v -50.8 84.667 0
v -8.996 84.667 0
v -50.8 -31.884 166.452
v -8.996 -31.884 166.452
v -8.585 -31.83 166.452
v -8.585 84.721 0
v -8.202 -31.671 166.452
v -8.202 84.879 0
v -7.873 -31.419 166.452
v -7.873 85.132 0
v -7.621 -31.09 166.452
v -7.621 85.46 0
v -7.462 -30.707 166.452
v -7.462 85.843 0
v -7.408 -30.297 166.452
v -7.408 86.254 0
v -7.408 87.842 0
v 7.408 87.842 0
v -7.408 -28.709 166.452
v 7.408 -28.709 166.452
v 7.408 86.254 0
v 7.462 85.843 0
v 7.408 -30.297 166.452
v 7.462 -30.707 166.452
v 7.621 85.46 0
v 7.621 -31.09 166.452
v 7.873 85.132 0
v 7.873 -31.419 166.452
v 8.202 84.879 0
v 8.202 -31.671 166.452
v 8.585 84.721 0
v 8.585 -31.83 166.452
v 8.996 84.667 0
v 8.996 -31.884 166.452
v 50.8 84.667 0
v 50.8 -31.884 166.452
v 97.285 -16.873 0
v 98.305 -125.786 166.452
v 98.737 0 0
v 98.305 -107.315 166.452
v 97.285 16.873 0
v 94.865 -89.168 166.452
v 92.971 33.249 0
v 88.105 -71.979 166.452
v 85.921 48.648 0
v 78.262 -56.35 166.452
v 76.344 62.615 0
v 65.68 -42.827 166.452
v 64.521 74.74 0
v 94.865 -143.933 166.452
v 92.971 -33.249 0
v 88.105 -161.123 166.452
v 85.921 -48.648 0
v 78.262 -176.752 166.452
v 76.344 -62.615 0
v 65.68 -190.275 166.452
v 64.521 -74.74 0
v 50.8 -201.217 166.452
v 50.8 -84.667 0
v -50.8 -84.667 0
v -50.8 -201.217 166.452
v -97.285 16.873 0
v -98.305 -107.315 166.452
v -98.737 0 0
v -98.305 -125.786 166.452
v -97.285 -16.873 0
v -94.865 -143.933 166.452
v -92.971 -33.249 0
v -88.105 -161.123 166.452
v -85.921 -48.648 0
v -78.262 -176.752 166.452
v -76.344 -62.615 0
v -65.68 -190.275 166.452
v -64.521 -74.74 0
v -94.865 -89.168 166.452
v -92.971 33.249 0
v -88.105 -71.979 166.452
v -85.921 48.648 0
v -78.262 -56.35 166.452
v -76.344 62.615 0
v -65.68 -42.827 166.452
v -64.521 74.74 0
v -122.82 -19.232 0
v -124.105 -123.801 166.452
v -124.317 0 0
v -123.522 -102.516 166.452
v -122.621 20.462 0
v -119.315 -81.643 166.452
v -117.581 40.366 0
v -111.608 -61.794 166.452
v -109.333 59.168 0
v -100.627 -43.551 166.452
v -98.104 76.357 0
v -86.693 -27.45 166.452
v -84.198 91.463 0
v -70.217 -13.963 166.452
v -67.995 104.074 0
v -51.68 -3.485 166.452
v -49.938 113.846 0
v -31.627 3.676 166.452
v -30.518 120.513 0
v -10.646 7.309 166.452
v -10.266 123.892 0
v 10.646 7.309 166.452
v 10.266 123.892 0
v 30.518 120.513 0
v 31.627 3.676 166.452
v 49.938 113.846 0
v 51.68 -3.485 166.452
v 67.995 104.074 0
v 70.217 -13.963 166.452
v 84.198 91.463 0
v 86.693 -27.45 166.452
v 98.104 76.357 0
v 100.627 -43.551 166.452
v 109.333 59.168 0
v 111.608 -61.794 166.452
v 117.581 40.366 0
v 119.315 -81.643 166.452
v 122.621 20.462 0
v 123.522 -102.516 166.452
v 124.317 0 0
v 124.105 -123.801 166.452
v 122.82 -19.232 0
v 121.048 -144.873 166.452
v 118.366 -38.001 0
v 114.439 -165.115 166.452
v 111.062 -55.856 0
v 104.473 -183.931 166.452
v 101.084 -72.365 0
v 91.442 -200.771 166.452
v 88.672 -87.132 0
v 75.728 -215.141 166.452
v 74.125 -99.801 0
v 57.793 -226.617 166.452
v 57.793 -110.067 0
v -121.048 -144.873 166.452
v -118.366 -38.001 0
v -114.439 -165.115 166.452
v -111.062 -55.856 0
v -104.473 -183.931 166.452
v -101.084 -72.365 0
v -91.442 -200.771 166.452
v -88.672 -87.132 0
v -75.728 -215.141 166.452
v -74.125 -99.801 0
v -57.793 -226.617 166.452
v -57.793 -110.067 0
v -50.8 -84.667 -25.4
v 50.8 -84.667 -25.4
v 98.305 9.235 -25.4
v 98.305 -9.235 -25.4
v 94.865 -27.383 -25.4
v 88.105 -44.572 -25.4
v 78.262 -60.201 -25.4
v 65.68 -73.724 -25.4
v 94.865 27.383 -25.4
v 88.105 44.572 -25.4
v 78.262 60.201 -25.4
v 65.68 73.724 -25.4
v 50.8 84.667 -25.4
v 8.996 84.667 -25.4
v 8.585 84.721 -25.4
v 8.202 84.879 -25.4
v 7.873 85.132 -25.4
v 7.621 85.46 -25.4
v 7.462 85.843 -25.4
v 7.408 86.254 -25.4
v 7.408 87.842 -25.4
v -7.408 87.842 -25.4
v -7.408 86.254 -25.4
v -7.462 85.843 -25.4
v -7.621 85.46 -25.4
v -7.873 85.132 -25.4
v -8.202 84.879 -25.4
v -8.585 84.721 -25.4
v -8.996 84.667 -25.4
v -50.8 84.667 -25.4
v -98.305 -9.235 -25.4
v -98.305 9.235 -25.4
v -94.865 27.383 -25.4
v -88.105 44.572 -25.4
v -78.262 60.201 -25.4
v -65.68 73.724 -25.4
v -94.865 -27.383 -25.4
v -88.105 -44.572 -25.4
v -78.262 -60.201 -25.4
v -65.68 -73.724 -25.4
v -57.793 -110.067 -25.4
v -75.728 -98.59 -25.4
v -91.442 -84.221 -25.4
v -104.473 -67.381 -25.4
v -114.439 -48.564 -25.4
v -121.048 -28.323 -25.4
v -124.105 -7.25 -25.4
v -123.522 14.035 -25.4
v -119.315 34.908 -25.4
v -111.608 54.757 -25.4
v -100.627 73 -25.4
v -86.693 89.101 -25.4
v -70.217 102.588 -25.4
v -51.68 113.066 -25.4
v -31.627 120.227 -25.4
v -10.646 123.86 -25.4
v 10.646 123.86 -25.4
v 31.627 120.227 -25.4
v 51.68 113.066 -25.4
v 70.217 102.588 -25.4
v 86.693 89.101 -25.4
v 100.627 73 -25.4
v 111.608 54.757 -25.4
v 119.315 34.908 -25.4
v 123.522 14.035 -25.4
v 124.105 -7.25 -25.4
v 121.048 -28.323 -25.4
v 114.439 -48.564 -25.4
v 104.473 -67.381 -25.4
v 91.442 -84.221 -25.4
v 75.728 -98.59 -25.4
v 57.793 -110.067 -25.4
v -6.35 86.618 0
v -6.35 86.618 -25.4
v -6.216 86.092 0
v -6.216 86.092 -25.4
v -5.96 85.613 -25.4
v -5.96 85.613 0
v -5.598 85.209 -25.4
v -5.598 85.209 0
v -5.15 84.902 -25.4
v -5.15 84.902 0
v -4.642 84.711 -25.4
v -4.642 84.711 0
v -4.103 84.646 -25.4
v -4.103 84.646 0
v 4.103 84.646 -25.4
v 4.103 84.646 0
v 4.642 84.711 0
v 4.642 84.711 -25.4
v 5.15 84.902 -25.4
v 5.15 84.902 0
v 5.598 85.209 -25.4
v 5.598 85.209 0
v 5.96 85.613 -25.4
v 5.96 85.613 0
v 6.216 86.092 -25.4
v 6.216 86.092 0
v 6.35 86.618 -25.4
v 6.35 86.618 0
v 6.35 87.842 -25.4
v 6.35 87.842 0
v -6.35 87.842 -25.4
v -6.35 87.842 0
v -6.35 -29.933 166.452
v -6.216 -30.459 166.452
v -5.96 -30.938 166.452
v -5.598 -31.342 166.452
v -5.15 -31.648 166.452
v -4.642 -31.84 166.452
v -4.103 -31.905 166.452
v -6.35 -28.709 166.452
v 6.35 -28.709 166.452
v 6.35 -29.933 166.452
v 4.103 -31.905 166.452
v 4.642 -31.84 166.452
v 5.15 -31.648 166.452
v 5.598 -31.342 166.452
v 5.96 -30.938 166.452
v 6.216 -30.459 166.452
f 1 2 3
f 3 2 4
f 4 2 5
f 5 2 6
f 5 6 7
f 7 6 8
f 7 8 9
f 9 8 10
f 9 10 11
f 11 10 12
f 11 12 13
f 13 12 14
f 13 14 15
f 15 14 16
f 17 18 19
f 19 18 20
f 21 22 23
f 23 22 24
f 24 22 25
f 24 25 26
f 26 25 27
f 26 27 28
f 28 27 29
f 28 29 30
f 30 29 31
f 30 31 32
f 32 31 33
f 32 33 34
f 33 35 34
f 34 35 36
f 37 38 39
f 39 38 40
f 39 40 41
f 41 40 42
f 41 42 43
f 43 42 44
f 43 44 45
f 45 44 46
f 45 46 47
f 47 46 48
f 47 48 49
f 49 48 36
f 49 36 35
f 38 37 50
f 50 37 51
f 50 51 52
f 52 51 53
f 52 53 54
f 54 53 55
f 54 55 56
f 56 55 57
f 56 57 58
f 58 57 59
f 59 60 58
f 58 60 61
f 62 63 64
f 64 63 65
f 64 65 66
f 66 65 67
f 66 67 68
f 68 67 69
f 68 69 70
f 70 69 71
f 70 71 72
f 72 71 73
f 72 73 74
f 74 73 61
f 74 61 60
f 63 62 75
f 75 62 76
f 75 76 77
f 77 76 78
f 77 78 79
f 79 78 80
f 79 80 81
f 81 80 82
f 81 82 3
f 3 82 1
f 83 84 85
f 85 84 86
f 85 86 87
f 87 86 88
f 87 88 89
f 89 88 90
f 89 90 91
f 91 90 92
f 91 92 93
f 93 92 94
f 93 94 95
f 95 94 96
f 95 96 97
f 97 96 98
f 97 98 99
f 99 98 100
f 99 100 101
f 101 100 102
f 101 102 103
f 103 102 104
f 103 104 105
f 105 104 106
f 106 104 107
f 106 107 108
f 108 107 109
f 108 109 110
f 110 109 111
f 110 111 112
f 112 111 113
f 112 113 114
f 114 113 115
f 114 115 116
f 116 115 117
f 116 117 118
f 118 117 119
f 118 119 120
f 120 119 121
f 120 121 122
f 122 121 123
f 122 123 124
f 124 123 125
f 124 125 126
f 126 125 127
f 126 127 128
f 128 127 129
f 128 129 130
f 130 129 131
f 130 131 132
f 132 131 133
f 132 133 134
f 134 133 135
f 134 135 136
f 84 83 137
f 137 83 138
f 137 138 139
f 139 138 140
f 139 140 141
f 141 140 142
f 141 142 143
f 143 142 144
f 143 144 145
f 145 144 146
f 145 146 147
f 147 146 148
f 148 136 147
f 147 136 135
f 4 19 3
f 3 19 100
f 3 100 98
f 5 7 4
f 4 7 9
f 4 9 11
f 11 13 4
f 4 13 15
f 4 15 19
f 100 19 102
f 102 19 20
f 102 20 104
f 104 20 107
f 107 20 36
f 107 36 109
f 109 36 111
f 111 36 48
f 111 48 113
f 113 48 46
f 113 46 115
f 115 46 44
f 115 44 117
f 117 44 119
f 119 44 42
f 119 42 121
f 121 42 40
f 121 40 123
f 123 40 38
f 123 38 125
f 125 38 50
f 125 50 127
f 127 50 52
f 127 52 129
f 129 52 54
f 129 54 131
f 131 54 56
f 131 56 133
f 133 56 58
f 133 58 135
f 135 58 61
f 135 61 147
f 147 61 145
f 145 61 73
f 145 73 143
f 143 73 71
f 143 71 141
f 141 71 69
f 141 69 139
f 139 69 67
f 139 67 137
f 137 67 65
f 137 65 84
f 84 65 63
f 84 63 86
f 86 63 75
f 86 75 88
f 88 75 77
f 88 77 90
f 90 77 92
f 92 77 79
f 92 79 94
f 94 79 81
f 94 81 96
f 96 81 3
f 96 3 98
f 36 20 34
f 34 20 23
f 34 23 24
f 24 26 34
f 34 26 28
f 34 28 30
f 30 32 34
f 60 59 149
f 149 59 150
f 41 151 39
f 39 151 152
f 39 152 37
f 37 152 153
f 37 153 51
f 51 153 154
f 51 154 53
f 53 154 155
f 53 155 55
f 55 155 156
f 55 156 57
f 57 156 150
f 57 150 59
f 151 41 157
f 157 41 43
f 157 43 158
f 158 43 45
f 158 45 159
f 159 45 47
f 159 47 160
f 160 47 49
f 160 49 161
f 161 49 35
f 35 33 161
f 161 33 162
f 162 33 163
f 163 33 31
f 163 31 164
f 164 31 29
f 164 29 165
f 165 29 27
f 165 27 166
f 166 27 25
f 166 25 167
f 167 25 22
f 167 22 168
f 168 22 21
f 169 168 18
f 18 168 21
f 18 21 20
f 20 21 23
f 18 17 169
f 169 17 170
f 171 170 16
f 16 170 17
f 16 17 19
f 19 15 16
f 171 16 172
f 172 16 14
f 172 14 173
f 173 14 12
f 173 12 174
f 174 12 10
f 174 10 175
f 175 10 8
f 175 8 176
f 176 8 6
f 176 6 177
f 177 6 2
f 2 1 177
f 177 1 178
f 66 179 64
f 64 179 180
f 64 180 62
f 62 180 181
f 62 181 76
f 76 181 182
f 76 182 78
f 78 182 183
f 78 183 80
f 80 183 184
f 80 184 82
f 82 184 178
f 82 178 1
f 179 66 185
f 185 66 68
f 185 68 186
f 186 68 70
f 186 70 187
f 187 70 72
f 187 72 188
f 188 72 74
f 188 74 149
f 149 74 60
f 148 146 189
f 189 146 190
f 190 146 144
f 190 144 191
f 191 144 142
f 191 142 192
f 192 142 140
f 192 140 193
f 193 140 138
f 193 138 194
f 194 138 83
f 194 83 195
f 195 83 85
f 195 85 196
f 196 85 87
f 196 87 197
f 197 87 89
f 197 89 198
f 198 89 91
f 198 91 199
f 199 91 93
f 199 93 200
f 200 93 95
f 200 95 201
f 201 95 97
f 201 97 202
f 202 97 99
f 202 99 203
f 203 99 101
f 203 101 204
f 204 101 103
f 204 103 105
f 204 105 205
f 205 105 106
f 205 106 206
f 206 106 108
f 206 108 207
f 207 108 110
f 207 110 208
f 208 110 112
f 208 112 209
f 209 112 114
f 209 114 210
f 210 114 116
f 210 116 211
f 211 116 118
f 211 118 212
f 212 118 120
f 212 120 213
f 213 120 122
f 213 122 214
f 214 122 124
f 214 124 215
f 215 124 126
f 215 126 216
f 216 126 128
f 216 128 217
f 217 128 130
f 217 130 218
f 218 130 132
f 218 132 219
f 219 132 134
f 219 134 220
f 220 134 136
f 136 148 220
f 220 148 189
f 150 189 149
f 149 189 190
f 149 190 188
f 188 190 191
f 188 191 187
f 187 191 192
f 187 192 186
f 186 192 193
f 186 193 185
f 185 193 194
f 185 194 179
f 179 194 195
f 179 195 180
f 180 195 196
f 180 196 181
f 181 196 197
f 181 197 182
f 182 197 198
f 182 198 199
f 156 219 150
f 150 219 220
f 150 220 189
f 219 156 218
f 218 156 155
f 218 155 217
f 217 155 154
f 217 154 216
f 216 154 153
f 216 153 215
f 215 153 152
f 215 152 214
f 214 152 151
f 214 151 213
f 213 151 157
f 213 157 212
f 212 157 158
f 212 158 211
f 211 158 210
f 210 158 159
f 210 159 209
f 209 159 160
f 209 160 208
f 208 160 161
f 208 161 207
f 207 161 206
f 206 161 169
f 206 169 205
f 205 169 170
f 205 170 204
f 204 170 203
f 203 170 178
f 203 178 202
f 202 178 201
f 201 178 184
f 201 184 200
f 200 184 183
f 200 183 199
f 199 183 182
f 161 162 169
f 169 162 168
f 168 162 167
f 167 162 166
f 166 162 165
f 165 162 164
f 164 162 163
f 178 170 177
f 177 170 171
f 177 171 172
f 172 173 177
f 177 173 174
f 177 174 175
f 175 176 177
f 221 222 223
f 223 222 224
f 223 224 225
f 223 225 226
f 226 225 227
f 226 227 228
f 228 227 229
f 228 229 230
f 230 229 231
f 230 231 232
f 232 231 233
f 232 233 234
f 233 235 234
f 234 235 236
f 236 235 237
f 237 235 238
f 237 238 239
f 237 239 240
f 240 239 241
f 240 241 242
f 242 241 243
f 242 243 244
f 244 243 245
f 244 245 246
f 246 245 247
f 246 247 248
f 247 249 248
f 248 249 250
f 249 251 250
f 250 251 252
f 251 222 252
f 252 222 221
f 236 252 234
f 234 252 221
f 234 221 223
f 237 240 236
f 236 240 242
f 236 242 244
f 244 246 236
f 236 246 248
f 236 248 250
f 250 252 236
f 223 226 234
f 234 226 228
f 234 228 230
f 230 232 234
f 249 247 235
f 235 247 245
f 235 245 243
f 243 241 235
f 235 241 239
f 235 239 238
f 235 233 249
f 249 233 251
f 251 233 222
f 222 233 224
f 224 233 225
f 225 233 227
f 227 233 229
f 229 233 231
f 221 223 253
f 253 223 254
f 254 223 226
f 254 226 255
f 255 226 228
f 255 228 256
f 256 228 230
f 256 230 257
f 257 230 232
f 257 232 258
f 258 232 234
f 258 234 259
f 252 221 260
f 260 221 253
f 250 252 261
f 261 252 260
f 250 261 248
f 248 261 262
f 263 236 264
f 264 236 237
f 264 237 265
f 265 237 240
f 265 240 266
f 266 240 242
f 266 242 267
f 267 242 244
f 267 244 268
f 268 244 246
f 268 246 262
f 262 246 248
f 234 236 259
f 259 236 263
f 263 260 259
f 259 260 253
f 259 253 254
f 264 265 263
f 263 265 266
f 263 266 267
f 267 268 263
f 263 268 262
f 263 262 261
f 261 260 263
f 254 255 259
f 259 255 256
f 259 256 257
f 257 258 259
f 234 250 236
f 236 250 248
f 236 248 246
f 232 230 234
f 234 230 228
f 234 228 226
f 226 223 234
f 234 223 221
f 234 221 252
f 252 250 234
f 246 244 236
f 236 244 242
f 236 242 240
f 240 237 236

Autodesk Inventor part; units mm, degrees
ref_plane "YZ Plane" through (0, 0, 0) normal (1, 0, 0) x (0, 1, 0)
ref_plane "XZ Plane" through (0, 0, 0) normal (0, 1, 0) x (-1, 0, 0)
sketch "Sketch1" plane through (0, 0, 0) normal (0, 0, 1) x (1, 0, 0)
  line L0 (-50.8, -84.6667) -> (50.8, -84.6667)
  arc A0 (57.793, -110.0667) -> (-57.793, -110.0667) centre (0, 0) ccw
  arc A1 (-50.8, 84.6667) -> (-50.8, -84.6667) centre (0, 0) ccw
  arc A2 (50.8, -84.6667) -> (50.8, 84.6667) centre (0, 0) ccw
  line L1 (-57.793, -110.0667) -> (57.793, -110.0667)
  line L2 (0, 84.6667) -> (0, 87.8417) construction
  line L3 (-7.4083, 87.8417) -> (7.4083, 87.8417)
  line L4 (-7.4083, 87.8417) -> (-7.4083, 86.2542)
  line L5 (7.4083, 87.8417) -> (7.4083, 86.2542)
  line L6 (0, 84.6667) -> (8.9958, 84.6667) construction
  arc A3 (7.4083, 86.2542) -> (8.9958, 84.6667) centre (8.9958, 86.2542) ccw
  arc A4 (-8.9958, 84.6667) -> (-7.4083, 86.2542) centre (-8.9958, 86.2542) ccw
  line L7 (-50.8, 84.6667) -> (-8.9958, 84.6667)
  line L8 (8.9958, 84.6667) -> (50.8, 84.6667)
  line L9 (0, 84.6667) -> (-8.9958, 84.6667) construction
  line L10 (-6.35, 87.8417) -> (0, 87.8417)
  line L11 (7.4083, 87.8417) -> (-7.4083, 87.8417)
  line L12 (-6.35, 87.8417) -> (-6.35, 86.6178)
  line L13 (-4.1034, 84.646) -> (0, 84.646)
  line L14 (0, 84.646) -> (0, 87.8417) construction
  line L15 (-6.3485, 84.6667) -> (-3.1743, 87.8409) construction
  arc A5 (-3.1736, 84.646) -> (-6.35, 87.8417) centre (-6.3485, 84.6667) ccw construction
  arc A6 (-6.35, 86.6178) -> (-4.1034, 84.646) centre (-4.1034, 86.9117) ccw
  line L16 (6.35, 87.8417) -> (0, 87.8417)
  line L17 (6.35, 87.8417) -> (6.35, 86.6178)
  line L18 (4.1034, 84.646) -> (0, 84.646)
  line L19 (6.3485, 84.6667) -> (3.1743, 87.8409) construction
  arc A7 (6.35, 87.8417) -> (3.1736, 84.646) centre (6.3485, 84.6667) ccw construction
  arc A8 (4.1034, 84.646) -> (6.35, 86.6178) centre (4.1034, 86.9117) ccw
  line L20 (6.35, 87.8417) -> (-6.35, 87.8417)
  dimension "d1" = 101.6
  dimension "d2" = 25.4
  dimension "d34" = 14.8167
  dimension "d35" = 1.5875
  dimension "d36" = 1.5875
  dimension "d38" = 6.35
  dimension "d39" = 3.175
  dimension "d40" = 45
  dimension "d41" = 2.2657
  dimension "d42" = 2.2466
extrude "connecction top" add sketch "Sketch1" against normal blind 25.4
extrude "light flat" add sketch "Sketch1" against normal up to surface (25.4 mm away) separate body contours L3 L17 A8 L18 L13 A6 L12
ref_plane "Work Plane2" through (0, 0, 203.2) normal (0, 0, 1) x (1, 0, 0)
sketch "Sketch6" plane through (0, 0, 0) normal (1, 0, 0) x (0, 1, 0)
  line L0 (-110.0667, 0) -> (124.3169, 0) projected
  line L1 (-83.4784, 0) -> (-200.0291, 166.4517)
  point P0 (0, 0)
  dimension "d28" = 203.2
  dimension "d29" = 55
sweep "ramp" add profiles "Sketch1" path "Sketch6" bodies 1 path curves L1
sweep "light angle" add profiles "Sketch1" path "Sketch6" separate body path curves L1 contours L3 L17 A8 L18 L13 A6 L12
equation "\"d35\" = 0.5 * d37"
equation "\"d37\" = 3.175"
properties part number "ramp top connect"
